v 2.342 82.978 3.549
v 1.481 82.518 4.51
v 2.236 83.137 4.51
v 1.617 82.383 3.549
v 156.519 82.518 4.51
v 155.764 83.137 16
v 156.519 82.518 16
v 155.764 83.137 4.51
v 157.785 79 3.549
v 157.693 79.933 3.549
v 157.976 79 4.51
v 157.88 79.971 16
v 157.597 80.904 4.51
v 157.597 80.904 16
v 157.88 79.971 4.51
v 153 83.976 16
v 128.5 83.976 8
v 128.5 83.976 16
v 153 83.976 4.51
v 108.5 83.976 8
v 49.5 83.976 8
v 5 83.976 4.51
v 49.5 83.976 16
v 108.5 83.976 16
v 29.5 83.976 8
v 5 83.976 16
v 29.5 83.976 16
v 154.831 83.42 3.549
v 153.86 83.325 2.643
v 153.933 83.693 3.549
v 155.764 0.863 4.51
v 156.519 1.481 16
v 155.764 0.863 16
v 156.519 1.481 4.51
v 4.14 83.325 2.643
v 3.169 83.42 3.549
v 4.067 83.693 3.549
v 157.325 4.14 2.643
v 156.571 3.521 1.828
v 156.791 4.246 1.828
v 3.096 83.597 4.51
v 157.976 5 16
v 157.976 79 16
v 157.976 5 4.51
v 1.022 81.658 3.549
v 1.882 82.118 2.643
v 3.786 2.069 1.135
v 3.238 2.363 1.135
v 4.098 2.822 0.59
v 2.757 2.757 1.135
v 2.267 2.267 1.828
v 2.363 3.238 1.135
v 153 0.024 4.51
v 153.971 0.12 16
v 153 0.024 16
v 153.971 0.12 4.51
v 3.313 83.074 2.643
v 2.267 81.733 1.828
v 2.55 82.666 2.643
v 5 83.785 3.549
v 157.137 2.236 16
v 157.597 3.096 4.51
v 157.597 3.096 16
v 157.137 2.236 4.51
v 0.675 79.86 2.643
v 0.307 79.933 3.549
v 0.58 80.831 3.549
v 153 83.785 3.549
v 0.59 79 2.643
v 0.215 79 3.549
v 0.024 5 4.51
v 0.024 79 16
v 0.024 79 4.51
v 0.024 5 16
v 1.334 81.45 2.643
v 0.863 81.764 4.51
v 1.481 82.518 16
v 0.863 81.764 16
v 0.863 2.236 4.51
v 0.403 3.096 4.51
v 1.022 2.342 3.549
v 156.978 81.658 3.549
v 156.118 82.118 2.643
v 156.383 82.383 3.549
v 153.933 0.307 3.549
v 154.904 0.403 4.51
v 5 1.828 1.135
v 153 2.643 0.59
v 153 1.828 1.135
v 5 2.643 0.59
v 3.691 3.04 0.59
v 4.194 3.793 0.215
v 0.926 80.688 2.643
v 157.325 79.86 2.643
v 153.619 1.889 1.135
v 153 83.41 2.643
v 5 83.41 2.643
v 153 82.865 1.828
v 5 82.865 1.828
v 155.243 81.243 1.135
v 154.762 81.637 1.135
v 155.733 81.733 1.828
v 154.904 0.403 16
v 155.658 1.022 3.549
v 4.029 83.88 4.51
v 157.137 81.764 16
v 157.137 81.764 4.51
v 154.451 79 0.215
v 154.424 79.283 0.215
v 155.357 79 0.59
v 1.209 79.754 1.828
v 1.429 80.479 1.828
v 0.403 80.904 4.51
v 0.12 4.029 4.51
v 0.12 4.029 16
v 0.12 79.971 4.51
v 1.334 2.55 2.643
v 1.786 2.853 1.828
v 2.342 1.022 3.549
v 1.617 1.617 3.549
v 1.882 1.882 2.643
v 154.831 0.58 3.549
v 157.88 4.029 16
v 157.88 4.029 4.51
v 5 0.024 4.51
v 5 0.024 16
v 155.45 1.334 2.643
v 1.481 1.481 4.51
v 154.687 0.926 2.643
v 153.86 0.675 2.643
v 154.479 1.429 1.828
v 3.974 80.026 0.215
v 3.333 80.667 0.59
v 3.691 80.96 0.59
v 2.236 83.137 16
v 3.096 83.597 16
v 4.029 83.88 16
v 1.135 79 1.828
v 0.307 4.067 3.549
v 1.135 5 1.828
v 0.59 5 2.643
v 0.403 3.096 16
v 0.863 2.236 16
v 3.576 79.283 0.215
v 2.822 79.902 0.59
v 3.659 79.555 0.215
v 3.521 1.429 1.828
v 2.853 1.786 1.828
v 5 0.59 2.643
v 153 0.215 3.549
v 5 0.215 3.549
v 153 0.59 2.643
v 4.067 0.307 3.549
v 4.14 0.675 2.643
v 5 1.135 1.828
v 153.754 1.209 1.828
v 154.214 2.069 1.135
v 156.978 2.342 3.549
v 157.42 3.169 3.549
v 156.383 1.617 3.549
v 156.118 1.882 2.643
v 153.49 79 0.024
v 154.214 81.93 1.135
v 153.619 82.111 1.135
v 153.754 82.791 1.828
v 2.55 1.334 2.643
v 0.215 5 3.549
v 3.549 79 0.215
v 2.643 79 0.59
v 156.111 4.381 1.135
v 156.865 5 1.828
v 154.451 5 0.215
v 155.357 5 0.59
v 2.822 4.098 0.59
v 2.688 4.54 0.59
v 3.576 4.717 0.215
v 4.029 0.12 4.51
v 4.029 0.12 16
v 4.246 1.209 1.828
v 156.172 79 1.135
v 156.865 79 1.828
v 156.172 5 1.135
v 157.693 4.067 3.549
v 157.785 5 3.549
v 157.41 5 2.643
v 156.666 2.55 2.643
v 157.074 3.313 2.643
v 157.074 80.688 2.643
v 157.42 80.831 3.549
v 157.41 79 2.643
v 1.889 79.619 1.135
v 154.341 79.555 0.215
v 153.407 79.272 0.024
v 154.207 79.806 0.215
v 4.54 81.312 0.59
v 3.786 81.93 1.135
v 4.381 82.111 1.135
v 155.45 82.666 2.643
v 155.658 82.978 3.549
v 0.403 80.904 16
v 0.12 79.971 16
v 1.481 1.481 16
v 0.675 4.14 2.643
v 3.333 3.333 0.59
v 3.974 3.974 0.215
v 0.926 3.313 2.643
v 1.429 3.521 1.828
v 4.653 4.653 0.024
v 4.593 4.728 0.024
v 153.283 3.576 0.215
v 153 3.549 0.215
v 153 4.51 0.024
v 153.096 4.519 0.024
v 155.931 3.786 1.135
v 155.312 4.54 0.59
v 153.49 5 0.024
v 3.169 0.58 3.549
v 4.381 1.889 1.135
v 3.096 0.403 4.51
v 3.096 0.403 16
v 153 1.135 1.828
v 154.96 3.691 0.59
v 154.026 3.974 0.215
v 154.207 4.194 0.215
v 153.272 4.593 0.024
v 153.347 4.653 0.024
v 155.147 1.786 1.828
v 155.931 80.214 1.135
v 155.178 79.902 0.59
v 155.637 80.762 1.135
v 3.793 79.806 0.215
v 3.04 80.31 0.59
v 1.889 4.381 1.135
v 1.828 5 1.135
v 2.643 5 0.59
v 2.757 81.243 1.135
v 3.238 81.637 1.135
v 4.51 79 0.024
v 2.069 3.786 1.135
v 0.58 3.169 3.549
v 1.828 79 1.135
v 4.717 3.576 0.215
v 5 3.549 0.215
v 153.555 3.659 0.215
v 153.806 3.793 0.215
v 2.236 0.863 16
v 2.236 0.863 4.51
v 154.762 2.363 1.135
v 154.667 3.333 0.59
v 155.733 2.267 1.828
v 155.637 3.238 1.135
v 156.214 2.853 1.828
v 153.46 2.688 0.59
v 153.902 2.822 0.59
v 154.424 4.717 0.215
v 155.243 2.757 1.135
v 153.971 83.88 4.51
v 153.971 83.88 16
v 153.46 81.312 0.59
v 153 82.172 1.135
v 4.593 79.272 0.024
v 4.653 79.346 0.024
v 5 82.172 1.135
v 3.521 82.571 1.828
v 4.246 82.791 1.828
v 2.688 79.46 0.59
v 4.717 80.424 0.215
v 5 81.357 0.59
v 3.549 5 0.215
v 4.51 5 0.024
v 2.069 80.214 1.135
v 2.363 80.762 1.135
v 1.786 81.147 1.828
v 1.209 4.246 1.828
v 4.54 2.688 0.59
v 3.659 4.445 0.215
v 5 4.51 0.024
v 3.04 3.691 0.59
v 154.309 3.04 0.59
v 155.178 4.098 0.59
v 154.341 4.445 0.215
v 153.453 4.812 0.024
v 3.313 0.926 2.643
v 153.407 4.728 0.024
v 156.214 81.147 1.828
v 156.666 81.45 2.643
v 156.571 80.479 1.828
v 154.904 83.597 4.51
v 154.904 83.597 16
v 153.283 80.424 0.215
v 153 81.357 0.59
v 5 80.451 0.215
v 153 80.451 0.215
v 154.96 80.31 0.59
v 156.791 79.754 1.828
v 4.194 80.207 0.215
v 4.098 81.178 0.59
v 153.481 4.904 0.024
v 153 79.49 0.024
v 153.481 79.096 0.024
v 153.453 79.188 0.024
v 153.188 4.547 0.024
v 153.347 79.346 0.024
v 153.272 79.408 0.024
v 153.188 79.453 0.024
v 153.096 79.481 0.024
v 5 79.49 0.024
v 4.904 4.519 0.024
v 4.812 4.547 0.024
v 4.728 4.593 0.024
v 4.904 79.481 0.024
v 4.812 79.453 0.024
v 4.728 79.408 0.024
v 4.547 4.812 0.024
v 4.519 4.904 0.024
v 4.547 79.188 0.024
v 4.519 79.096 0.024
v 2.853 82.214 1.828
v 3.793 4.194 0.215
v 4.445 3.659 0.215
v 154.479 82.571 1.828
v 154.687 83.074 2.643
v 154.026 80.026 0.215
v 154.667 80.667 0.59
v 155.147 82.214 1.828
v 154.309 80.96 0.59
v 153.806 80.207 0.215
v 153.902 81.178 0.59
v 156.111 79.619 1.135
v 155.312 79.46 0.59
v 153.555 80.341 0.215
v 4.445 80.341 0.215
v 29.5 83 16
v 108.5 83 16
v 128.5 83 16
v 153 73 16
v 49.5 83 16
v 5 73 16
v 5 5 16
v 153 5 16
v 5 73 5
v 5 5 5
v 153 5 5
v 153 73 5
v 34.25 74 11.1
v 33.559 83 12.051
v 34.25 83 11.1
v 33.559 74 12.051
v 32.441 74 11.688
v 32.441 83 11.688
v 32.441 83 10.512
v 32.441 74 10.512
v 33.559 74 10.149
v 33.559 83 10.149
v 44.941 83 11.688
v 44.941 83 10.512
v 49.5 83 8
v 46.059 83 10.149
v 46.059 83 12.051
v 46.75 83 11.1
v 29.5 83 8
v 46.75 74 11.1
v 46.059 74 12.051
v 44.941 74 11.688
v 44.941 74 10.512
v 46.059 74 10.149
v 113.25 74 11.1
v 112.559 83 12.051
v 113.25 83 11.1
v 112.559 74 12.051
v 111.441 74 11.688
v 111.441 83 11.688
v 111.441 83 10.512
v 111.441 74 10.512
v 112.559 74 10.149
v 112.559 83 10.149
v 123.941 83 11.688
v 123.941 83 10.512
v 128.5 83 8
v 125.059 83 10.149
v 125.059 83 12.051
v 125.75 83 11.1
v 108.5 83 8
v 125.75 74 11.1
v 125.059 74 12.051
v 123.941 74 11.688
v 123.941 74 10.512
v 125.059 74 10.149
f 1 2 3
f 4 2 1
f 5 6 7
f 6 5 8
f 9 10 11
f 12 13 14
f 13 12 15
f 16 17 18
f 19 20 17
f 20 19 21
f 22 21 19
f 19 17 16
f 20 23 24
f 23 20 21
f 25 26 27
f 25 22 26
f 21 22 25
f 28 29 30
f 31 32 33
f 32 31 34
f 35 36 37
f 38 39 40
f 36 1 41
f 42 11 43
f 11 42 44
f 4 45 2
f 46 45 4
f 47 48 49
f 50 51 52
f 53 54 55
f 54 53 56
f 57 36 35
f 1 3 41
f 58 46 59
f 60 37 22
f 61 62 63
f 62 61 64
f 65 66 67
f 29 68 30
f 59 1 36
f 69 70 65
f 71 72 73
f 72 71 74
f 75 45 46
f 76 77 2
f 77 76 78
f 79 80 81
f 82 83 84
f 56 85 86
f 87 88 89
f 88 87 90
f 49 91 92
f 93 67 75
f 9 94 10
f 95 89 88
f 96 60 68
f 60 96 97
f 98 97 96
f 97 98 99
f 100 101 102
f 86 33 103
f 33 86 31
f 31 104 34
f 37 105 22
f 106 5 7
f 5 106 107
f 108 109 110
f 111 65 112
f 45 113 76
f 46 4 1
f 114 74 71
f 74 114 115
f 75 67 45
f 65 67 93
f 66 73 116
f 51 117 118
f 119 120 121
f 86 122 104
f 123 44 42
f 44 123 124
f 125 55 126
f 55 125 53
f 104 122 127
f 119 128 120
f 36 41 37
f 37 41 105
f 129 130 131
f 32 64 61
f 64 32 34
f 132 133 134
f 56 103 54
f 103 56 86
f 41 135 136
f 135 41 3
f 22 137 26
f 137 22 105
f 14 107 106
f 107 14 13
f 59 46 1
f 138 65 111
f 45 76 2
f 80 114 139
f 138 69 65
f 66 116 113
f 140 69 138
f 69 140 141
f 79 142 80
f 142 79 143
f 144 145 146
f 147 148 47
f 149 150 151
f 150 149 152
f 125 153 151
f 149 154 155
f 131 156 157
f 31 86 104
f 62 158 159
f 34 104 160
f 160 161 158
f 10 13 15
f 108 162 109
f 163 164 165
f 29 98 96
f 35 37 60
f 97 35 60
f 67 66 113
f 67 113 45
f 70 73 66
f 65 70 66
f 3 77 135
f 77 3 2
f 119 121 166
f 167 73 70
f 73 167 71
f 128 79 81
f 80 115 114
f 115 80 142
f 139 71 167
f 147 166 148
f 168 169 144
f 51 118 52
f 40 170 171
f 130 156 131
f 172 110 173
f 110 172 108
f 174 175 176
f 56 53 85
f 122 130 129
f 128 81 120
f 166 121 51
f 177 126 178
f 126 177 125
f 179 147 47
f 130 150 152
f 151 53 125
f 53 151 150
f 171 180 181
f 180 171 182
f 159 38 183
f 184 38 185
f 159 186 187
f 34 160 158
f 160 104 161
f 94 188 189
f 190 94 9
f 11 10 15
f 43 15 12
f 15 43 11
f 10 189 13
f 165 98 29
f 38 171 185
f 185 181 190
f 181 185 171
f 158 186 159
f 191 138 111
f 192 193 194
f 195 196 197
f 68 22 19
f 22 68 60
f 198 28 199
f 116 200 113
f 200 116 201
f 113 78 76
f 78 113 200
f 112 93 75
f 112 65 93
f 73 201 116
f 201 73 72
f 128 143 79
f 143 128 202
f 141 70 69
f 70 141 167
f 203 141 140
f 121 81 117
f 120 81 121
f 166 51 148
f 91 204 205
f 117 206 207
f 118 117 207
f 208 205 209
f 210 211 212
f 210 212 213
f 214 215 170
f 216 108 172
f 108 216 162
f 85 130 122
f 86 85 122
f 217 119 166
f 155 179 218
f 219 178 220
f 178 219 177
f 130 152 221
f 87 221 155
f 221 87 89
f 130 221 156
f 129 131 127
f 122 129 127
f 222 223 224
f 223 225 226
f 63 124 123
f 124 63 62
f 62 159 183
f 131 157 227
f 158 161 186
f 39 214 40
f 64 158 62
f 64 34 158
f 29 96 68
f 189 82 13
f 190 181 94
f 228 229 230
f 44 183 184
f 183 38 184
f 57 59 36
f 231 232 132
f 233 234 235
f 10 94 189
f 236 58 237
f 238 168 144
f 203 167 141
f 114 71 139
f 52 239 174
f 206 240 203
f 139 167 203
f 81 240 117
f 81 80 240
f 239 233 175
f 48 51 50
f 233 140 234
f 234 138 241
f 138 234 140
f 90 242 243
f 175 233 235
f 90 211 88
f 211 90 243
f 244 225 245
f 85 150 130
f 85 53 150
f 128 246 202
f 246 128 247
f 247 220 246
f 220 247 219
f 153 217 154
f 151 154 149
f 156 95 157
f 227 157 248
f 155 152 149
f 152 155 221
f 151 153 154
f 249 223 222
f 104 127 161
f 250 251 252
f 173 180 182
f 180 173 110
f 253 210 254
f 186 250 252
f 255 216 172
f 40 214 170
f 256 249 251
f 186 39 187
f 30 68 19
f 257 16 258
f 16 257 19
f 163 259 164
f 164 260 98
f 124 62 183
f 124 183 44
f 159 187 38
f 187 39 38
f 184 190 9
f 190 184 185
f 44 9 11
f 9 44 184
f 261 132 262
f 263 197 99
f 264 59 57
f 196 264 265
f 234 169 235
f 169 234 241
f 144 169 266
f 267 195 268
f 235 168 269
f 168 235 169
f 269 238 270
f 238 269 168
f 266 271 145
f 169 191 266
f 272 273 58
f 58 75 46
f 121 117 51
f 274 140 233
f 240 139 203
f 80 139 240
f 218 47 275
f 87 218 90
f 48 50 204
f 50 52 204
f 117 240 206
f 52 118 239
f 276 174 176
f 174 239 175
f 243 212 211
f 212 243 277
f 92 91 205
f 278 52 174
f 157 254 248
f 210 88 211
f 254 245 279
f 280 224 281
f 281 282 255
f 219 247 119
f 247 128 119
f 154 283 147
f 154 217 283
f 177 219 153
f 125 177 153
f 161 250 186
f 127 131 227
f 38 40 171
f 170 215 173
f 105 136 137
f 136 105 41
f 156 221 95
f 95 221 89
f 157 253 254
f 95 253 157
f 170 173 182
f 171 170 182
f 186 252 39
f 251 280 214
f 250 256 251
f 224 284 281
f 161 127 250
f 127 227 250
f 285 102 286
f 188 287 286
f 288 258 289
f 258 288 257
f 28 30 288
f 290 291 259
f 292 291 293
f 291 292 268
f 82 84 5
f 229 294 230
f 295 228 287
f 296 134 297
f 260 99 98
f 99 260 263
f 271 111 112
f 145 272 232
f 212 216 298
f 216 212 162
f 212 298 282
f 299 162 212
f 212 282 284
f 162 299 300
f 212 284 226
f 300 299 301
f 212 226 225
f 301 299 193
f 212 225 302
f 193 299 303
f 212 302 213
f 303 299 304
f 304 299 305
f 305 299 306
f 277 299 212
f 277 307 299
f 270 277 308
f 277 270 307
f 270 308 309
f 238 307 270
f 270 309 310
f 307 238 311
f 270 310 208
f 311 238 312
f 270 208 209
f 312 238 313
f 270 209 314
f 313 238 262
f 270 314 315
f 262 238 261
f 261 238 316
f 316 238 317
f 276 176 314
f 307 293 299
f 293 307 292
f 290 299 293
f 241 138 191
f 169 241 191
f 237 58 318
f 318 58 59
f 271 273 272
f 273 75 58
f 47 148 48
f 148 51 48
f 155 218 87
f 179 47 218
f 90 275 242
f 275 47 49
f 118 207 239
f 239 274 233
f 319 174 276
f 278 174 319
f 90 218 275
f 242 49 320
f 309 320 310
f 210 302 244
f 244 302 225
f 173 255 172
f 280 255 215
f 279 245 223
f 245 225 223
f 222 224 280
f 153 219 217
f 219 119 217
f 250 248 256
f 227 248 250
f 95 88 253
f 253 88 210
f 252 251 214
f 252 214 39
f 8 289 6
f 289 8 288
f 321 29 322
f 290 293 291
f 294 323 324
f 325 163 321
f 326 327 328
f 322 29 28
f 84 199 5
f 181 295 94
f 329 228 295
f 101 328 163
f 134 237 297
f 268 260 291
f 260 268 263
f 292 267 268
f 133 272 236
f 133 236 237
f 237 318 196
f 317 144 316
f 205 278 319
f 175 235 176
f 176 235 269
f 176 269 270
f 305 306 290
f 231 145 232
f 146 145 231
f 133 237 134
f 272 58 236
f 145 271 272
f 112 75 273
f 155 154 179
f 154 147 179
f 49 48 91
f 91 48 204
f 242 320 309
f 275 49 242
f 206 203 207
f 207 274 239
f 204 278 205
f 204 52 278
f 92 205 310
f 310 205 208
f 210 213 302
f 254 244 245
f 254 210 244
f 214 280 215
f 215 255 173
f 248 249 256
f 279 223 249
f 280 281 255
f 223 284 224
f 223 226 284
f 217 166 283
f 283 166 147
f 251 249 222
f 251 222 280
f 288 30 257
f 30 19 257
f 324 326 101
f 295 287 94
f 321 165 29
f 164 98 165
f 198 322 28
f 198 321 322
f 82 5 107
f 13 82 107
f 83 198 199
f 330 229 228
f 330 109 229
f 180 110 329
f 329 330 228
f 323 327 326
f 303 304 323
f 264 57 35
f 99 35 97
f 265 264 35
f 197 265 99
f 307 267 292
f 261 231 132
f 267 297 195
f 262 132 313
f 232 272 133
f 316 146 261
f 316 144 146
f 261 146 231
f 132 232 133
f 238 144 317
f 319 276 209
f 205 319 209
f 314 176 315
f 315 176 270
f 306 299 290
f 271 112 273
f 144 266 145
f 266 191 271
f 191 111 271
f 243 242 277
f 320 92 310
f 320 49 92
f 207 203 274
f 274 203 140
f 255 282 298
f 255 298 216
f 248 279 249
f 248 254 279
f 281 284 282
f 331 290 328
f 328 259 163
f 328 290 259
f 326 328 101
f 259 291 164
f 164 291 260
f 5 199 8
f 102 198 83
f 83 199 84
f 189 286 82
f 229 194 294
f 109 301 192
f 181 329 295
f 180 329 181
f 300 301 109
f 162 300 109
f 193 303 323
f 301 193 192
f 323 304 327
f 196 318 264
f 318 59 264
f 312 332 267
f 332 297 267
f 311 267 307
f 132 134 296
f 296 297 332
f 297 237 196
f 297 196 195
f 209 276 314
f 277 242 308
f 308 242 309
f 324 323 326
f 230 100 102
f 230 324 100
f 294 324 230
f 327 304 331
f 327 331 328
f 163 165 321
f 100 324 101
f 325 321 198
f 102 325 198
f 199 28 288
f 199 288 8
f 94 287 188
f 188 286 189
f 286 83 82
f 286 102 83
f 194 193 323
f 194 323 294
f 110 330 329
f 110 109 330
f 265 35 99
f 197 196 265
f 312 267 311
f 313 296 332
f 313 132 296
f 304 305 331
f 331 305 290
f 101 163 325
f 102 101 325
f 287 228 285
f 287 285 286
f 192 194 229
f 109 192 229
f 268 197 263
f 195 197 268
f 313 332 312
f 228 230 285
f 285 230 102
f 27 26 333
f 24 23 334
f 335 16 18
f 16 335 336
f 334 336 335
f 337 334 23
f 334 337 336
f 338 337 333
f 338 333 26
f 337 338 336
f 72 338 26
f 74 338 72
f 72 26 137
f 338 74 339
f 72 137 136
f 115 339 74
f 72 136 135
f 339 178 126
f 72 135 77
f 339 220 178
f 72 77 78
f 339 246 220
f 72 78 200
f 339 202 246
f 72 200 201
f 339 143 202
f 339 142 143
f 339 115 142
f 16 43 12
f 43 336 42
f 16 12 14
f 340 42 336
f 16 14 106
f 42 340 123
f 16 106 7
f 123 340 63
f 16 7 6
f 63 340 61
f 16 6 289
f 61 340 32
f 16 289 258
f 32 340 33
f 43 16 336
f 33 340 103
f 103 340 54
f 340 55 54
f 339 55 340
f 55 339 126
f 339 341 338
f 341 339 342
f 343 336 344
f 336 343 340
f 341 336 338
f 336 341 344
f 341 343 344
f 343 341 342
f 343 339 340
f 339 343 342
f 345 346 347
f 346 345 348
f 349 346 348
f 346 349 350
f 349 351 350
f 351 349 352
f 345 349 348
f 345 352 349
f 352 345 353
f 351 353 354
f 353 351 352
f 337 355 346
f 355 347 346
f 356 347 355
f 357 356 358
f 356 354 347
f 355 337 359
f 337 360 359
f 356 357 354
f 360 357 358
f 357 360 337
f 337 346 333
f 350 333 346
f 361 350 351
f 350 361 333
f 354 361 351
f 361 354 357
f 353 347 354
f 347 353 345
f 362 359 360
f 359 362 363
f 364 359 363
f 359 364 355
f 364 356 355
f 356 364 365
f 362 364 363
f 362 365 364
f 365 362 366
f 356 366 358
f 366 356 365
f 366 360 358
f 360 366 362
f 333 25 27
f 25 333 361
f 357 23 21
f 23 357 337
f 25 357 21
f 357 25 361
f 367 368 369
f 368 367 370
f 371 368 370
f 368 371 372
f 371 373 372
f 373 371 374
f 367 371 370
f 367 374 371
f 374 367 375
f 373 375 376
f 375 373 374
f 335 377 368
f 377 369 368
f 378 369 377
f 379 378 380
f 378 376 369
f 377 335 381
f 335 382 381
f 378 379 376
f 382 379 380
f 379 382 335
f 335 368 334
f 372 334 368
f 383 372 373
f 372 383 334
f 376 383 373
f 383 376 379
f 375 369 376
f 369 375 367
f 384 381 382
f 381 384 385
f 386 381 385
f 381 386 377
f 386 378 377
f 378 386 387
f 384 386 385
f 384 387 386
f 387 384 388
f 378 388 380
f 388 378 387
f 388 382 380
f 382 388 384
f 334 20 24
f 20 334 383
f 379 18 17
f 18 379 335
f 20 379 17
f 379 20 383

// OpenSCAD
union() {
	difference() {
		difference() {
			difference() {
				difference() {
					translate(v = [5, 5, 5]) {
						minkowski() {
							cube(size = [148, 74, 11.0000000000]);
							sphere($fn = 32, r = 5);
						}
					}
					translate(v = [0, 0, 16.0000000000]) {
						cube(size = [158, 84, 5]);
					}
				}
				translate(v = [5, 5, 5]) {
					cube(size = [148, 68, 12.0000000000]);
				}
			}
			translate(v = [39.5000000000, 84, 16.0000000000]) {
				translate(v = [-10, -1, -8]) {
					cube(size = [20, 2, 9]);
					translate(v = [0, 0, 3.1000000000]) {
						translate(v = [3.7500000000, 0, 0]) {
							rotate(a = 90, v = [1, 0, 0]) {
								cylinder(h = 9, r = 1);
							}
						}
						translate(v = [16.2500000000, 0, 0]) {
							rotate(a = 90, v = [1, 0, 0]) {
								cylinder(h = 9, r = 1);
							}
						}
					}
				}
			}
		}
		translate(v = [118.5000000000, 84, 16.0000000000]) {
			translate(v = [-10, -1, -8]) {
				cube(size = [20, 2, 9]);
				translate(v = [0, 0, 3.1000000000]) {
					translate(v = [3.7500000000, 0, 0]) {
						rotate(a = 90, v = [1, 0, 0]) {
							cylinder(h = 9, r = 1);
						}
					}
					translate(v = [16.2500000000, 0, 0]) {
						rotate(a = 90, v = [1, 0, 0]) {
							cylinder(h = 9, r = 1);
						}
					}
				}
			}
		}
	}
}
